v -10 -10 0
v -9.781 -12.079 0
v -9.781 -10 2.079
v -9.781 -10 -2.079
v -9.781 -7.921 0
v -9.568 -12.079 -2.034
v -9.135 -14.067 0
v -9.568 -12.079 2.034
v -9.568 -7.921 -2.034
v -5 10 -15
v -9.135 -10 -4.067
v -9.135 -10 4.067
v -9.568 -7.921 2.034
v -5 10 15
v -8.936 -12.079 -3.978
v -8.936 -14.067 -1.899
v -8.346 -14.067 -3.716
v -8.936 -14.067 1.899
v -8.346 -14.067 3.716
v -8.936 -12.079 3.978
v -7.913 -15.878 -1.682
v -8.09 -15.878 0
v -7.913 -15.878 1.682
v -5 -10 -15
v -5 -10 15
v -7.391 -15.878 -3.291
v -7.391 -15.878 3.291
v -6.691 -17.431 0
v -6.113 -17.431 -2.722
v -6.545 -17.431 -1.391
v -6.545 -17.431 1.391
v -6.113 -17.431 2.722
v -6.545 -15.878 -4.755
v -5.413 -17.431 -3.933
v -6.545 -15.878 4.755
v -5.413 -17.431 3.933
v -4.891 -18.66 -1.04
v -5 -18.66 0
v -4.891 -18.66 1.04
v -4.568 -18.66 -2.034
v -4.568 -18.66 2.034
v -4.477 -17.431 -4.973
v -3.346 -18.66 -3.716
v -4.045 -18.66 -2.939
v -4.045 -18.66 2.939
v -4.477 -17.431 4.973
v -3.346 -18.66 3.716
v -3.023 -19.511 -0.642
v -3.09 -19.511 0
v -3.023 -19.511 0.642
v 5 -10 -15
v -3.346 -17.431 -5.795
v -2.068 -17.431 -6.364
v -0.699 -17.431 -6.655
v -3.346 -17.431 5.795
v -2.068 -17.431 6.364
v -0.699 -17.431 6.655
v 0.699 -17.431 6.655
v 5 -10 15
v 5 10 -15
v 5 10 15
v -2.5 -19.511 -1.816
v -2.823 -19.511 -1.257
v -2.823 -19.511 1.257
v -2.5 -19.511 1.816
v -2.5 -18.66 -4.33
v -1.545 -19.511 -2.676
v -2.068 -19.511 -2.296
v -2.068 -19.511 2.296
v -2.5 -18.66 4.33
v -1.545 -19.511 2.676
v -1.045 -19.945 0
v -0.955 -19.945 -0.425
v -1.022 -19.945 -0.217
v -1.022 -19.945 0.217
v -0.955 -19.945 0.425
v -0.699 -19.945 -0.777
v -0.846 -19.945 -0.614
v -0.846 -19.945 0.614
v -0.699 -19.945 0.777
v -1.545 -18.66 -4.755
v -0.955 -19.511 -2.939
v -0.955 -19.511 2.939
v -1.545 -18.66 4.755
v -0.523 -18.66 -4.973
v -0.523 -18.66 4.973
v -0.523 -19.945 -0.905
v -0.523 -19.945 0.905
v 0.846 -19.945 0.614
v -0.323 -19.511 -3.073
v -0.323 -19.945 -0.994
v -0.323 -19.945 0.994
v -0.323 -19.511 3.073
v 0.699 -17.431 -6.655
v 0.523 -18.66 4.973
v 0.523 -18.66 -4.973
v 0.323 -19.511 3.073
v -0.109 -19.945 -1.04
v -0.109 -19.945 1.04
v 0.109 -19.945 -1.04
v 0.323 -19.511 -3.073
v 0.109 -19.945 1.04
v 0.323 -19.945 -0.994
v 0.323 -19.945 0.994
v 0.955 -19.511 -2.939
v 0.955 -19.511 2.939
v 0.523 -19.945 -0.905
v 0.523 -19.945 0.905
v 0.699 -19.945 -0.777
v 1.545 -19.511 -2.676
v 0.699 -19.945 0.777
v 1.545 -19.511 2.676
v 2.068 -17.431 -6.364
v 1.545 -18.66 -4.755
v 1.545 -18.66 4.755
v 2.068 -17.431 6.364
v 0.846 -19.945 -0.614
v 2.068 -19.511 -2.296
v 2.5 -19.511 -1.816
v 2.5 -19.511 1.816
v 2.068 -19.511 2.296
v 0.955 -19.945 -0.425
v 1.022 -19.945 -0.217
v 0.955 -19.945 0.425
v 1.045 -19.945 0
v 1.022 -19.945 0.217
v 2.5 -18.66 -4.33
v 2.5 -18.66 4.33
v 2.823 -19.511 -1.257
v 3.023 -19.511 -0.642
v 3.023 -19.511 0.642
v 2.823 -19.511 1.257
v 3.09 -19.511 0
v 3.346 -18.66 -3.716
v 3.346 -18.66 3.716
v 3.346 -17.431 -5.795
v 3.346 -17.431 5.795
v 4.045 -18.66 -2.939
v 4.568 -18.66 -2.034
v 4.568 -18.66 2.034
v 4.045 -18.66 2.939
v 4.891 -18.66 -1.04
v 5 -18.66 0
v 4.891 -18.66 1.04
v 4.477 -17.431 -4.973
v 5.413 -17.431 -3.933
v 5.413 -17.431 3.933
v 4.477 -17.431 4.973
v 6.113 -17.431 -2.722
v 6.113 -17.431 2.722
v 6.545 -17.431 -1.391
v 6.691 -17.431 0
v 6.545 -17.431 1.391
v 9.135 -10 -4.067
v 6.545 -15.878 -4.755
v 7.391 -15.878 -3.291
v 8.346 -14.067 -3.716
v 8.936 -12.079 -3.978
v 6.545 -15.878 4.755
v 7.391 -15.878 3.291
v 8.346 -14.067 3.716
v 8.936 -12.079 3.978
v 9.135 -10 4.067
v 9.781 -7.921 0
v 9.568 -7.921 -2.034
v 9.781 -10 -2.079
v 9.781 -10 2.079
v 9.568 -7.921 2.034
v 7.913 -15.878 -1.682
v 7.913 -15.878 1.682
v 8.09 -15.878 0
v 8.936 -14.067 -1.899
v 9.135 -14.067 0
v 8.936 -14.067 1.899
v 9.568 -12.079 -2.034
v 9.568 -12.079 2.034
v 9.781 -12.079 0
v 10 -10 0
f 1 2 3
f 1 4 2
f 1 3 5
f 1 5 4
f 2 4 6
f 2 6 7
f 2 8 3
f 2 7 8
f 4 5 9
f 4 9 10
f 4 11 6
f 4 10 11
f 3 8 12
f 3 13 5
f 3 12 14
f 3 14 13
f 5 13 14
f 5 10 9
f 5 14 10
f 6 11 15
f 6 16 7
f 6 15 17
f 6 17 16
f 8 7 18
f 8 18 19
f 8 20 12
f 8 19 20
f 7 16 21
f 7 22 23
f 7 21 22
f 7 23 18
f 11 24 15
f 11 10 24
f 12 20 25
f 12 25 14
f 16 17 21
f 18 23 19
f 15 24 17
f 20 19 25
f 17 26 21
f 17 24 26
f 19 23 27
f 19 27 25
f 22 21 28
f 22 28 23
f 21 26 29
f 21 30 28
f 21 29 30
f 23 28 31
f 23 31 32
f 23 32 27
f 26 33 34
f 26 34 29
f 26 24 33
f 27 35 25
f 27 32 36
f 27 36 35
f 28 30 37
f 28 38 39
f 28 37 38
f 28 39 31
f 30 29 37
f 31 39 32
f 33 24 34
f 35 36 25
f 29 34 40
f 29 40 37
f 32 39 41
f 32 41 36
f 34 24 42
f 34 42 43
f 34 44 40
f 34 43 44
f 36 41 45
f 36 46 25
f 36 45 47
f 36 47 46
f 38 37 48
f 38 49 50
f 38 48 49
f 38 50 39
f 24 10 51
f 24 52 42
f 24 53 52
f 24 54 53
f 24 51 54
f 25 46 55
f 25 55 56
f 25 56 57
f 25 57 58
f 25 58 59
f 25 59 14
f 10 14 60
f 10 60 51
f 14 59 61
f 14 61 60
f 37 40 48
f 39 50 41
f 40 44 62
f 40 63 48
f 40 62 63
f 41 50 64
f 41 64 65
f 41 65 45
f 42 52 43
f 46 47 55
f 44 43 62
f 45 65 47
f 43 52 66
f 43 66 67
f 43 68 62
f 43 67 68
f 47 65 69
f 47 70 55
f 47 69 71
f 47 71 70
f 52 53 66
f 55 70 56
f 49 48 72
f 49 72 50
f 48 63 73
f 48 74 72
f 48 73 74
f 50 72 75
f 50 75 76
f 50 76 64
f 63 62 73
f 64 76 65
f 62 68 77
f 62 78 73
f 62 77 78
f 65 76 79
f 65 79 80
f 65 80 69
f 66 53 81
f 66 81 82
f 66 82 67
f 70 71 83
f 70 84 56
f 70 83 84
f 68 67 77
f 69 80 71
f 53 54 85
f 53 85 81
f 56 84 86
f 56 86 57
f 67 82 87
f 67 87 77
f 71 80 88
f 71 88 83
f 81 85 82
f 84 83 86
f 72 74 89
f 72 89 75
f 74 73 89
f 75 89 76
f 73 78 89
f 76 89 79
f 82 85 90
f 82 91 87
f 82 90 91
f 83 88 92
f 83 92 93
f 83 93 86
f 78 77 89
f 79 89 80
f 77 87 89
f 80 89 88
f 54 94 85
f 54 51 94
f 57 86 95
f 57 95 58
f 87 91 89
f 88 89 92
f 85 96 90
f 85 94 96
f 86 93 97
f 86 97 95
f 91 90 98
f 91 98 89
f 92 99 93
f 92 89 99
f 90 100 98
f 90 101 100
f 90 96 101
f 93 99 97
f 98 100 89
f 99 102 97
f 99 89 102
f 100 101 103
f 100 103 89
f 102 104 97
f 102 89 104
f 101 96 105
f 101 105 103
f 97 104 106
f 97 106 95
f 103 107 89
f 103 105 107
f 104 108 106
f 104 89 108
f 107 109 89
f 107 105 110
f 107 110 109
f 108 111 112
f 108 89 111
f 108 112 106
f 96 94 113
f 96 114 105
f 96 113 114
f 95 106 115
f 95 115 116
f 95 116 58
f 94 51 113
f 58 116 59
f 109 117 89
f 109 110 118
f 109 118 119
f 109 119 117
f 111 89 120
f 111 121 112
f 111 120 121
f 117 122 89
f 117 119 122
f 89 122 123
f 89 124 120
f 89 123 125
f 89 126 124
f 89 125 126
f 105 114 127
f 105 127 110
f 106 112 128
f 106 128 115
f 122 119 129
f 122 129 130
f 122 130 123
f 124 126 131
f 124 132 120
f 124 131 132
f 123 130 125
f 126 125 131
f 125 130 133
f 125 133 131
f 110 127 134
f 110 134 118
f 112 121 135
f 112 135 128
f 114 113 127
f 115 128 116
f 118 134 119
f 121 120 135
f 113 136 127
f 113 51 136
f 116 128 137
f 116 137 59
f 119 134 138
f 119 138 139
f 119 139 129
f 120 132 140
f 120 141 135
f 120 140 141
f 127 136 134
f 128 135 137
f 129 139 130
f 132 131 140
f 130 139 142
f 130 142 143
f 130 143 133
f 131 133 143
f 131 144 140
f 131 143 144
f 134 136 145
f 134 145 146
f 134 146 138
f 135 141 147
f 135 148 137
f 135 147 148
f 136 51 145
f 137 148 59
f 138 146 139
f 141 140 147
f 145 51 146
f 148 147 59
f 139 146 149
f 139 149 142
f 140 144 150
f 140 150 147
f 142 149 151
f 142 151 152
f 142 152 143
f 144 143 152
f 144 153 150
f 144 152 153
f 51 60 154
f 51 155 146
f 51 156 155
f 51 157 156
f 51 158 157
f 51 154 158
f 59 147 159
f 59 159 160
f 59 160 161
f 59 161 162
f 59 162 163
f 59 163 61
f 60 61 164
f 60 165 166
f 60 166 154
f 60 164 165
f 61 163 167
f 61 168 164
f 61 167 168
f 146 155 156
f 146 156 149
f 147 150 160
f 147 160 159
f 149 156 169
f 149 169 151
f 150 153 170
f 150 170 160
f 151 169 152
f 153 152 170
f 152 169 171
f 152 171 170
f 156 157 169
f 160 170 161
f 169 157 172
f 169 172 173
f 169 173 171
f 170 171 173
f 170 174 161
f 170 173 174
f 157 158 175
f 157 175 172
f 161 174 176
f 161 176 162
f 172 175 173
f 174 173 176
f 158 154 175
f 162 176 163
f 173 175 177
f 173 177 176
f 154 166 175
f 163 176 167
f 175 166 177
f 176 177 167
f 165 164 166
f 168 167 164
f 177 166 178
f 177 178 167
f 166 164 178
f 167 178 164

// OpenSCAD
// Start: lazy_union
default_5_default_5();
// End: lazy_union

// Modules.

// 'PartMaterial undef-default - default 5.0'
module default_5_default_5() {
  // 'None : _combine_solids_and_holes'
  union() {
    // 'default : _combine_solids_and_holes'
    union() {
      // 'hull : _combine_solids_and_holes'
      hull() {
        // 'box'
        multmatrix(m=[[1.0, 0.0, 0.0, -5.0], [0.0, 1.0, 0.0, -10.0], [0.0, 0.0, 1.0, -15.0], [0.0, 0.0, 0.0, 1.0]]) {
          // 'box : _combine_solids_and_holes'
          union() {
            // 'box'
            cube(size=[10.0, 20.0, 30.0]);
          }
        }
        // 'sphere'
        multmatrix(m=[[1.0, 0.0, 0.0, 0.0], [0.0, 0.0, 1.0, -10.0], [0.0, -1.0, 0.0, 0.0], [0.0, 0.0, 0.0, 1.0]]) {
          // 'sphere : _combine_solids_and_holes'
          union() {
            // 'sphere'
            sphere(r=10.0);
          }
        }
      }
    }
  }
} // end module default_5_default_5
